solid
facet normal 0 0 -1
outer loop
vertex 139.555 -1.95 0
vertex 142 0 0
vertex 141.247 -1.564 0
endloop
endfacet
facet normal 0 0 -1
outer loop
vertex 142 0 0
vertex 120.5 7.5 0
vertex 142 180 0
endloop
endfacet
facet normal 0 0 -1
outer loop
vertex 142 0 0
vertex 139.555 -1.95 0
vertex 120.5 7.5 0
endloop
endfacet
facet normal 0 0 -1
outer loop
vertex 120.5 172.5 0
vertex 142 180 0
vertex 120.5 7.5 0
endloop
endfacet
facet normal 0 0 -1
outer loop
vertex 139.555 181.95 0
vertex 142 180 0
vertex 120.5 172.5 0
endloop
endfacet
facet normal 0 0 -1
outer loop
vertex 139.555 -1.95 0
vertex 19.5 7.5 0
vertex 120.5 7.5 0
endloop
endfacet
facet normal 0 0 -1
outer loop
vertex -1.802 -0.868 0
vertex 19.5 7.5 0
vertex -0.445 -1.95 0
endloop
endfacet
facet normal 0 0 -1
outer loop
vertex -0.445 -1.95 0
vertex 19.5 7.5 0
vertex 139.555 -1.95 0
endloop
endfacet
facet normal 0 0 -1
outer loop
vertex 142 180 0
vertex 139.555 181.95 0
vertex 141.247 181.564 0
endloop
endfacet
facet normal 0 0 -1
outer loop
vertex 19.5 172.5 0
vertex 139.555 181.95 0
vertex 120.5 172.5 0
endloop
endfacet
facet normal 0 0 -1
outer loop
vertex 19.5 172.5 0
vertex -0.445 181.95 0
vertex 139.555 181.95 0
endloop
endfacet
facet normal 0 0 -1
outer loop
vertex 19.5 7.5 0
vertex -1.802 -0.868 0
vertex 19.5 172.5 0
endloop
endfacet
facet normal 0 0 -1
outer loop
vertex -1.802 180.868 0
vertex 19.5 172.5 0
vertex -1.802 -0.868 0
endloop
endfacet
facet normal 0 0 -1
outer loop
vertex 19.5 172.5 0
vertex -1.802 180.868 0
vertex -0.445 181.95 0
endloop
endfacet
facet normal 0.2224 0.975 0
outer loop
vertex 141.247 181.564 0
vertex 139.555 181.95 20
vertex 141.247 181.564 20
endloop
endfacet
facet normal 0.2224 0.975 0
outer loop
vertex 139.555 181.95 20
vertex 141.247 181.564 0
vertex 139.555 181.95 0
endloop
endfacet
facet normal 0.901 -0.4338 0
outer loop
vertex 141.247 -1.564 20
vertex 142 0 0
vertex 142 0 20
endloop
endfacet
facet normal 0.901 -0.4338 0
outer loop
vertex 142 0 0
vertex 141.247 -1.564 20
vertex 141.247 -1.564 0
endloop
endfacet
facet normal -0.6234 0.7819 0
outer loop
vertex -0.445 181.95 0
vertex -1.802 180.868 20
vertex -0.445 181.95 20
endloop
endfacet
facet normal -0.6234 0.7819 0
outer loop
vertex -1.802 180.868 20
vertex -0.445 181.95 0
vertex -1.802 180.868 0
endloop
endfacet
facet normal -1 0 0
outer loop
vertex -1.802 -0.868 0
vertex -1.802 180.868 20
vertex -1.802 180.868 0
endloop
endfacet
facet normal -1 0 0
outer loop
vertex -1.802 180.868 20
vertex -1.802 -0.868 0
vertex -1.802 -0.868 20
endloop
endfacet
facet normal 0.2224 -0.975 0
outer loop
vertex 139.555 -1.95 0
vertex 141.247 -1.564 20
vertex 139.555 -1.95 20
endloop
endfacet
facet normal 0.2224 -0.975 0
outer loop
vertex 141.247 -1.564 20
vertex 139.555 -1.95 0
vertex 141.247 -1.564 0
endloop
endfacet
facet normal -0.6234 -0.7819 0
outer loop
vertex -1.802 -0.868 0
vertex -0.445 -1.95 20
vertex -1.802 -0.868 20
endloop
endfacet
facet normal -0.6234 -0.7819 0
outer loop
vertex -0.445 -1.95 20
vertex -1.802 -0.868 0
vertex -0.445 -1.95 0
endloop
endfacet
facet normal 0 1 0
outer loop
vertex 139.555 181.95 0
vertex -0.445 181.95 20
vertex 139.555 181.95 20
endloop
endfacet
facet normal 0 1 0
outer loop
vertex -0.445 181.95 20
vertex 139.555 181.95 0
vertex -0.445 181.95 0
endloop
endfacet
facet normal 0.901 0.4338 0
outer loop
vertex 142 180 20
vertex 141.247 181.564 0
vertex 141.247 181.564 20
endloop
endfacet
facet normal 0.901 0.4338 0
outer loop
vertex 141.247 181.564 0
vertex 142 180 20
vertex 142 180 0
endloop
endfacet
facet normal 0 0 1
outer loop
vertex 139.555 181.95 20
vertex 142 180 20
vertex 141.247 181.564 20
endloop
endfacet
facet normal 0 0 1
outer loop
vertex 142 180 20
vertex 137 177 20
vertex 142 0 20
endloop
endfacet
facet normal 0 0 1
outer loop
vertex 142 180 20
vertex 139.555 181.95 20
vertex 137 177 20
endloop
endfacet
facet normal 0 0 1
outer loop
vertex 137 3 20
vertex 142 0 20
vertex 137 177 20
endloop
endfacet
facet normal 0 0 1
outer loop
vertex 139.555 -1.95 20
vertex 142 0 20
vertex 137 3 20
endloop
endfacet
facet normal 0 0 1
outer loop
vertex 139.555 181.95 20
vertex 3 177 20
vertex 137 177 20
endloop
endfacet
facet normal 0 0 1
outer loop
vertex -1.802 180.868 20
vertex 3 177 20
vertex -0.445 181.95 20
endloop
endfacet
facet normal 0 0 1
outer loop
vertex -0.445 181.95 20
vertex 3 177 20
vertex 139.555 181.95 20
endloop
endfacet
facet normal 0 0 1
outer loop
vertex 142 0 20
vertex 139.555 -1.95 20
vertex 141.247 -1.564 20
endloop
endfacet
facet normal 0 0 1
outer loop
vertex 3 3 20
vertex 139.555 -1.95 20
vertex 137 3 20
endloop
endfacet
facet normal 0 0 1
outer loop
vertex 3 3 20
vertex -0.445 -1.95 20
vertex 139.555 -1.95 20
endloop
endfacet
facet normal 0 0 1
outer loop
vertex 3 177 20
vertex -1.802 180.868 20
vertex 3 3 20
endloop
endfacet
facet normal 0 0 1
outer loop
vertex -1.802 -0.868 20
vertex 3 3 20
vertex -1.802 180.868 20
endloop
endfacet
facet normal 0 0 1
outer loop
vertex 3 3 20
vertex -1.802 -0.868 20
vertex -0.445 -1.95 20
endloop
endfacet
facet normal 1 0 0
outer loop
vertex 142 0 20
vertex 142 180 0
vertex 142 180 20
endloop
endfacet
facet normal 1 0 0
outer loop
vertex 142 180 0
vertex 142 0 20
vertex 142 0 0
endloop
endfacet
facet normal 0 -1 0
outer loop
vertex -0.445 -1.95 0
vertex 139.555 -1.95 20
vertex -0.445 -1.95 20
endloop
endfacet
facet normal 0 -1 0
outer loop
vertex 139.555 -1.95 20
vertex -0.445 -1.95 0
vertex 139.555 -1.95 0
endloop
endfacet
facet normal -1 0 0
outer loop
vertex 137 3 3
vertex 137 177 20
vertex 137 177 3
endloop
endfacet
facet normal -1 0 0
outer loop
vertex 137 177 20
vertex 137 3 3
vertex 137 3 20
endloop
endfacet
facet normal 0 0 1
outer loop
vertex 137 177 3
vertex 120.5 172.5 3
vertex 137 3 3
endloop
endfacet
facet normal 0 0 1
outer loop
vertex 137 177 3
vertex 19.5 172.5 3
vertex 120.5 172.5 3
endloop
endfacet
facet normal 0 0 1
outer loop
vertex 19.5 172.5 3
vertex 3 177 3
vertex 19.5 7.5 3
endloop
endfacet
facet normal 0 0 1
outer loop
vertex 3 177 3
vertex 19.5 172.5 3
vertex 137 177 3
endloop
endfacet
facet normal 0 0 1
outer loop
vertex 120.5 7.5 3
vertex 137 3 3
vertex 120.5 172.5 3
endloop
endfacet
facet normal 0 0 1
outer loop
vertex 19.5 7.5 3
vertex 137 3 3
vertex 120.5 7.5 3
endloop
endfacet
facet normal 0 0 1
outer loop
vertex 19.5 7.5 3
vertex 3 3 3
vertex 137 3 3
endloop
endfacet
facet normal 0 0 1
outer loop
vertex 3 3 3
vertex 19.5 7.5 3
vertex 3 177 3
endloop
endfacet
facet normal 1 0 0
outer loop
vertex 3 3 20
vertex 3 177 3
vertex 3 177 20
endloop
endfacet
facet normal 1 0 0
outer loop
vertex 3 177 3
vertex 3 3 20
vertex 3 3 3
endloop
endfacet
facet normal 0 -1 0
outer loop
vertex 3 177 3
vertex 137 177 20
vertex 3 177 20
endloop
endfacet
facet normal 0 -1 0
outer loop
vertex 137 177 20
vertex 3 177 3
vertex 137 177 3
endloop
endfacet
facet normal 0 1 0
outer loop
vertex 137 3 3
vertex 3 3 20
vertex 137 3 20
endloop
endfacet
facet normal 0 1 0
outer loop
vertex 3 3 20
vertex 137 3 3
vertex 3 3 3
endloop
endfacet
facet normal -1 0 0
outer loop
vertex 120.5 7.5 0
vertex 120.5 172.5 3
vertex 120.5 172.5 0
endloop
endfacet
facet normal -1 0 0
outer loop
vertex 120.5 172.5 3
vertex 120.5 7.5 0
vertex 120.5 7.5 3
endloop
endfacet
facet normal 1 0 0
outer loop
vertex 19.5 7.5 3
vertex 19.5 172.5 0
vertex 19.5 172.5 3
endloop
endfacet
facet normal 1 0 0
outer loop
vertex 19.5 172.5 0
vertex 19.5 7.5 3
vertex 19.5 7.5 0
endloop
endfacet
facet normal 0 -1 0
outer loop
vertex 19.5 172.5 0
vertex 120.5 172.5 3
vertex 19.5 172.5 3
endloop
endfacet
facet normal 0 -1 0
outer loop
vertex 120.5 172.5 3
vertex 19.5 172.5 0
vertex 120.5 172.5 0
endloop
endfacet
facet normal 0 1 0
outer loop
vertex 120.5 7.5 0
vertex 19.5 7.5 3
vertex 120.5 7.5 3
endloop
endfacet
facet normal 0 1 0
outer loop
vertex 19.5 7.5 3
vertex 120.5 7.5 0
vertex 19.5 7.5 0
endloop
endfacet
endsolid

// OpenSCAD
FrontPanel(140, 180, 10, 3);

module FrontPanel(width, length, height, wall) {
    difference() {
        difference() {
            minkowski() {
                cube([width, length, height]);
                cylinder(r=2, h=height);
            }
            translate([wall, wall, wall]) cube([width - 2 * wall,length - 2 * wall, height * 2]);   
        }
        sw = 101;
        sl = 165;
        translate([(width - sw) / 2,(length-sl) / 2, 0]) ScreenHole(sw, sl);
    }
}

module ScreenHole(width, length) {
    cube([width, length, 10]);
}
